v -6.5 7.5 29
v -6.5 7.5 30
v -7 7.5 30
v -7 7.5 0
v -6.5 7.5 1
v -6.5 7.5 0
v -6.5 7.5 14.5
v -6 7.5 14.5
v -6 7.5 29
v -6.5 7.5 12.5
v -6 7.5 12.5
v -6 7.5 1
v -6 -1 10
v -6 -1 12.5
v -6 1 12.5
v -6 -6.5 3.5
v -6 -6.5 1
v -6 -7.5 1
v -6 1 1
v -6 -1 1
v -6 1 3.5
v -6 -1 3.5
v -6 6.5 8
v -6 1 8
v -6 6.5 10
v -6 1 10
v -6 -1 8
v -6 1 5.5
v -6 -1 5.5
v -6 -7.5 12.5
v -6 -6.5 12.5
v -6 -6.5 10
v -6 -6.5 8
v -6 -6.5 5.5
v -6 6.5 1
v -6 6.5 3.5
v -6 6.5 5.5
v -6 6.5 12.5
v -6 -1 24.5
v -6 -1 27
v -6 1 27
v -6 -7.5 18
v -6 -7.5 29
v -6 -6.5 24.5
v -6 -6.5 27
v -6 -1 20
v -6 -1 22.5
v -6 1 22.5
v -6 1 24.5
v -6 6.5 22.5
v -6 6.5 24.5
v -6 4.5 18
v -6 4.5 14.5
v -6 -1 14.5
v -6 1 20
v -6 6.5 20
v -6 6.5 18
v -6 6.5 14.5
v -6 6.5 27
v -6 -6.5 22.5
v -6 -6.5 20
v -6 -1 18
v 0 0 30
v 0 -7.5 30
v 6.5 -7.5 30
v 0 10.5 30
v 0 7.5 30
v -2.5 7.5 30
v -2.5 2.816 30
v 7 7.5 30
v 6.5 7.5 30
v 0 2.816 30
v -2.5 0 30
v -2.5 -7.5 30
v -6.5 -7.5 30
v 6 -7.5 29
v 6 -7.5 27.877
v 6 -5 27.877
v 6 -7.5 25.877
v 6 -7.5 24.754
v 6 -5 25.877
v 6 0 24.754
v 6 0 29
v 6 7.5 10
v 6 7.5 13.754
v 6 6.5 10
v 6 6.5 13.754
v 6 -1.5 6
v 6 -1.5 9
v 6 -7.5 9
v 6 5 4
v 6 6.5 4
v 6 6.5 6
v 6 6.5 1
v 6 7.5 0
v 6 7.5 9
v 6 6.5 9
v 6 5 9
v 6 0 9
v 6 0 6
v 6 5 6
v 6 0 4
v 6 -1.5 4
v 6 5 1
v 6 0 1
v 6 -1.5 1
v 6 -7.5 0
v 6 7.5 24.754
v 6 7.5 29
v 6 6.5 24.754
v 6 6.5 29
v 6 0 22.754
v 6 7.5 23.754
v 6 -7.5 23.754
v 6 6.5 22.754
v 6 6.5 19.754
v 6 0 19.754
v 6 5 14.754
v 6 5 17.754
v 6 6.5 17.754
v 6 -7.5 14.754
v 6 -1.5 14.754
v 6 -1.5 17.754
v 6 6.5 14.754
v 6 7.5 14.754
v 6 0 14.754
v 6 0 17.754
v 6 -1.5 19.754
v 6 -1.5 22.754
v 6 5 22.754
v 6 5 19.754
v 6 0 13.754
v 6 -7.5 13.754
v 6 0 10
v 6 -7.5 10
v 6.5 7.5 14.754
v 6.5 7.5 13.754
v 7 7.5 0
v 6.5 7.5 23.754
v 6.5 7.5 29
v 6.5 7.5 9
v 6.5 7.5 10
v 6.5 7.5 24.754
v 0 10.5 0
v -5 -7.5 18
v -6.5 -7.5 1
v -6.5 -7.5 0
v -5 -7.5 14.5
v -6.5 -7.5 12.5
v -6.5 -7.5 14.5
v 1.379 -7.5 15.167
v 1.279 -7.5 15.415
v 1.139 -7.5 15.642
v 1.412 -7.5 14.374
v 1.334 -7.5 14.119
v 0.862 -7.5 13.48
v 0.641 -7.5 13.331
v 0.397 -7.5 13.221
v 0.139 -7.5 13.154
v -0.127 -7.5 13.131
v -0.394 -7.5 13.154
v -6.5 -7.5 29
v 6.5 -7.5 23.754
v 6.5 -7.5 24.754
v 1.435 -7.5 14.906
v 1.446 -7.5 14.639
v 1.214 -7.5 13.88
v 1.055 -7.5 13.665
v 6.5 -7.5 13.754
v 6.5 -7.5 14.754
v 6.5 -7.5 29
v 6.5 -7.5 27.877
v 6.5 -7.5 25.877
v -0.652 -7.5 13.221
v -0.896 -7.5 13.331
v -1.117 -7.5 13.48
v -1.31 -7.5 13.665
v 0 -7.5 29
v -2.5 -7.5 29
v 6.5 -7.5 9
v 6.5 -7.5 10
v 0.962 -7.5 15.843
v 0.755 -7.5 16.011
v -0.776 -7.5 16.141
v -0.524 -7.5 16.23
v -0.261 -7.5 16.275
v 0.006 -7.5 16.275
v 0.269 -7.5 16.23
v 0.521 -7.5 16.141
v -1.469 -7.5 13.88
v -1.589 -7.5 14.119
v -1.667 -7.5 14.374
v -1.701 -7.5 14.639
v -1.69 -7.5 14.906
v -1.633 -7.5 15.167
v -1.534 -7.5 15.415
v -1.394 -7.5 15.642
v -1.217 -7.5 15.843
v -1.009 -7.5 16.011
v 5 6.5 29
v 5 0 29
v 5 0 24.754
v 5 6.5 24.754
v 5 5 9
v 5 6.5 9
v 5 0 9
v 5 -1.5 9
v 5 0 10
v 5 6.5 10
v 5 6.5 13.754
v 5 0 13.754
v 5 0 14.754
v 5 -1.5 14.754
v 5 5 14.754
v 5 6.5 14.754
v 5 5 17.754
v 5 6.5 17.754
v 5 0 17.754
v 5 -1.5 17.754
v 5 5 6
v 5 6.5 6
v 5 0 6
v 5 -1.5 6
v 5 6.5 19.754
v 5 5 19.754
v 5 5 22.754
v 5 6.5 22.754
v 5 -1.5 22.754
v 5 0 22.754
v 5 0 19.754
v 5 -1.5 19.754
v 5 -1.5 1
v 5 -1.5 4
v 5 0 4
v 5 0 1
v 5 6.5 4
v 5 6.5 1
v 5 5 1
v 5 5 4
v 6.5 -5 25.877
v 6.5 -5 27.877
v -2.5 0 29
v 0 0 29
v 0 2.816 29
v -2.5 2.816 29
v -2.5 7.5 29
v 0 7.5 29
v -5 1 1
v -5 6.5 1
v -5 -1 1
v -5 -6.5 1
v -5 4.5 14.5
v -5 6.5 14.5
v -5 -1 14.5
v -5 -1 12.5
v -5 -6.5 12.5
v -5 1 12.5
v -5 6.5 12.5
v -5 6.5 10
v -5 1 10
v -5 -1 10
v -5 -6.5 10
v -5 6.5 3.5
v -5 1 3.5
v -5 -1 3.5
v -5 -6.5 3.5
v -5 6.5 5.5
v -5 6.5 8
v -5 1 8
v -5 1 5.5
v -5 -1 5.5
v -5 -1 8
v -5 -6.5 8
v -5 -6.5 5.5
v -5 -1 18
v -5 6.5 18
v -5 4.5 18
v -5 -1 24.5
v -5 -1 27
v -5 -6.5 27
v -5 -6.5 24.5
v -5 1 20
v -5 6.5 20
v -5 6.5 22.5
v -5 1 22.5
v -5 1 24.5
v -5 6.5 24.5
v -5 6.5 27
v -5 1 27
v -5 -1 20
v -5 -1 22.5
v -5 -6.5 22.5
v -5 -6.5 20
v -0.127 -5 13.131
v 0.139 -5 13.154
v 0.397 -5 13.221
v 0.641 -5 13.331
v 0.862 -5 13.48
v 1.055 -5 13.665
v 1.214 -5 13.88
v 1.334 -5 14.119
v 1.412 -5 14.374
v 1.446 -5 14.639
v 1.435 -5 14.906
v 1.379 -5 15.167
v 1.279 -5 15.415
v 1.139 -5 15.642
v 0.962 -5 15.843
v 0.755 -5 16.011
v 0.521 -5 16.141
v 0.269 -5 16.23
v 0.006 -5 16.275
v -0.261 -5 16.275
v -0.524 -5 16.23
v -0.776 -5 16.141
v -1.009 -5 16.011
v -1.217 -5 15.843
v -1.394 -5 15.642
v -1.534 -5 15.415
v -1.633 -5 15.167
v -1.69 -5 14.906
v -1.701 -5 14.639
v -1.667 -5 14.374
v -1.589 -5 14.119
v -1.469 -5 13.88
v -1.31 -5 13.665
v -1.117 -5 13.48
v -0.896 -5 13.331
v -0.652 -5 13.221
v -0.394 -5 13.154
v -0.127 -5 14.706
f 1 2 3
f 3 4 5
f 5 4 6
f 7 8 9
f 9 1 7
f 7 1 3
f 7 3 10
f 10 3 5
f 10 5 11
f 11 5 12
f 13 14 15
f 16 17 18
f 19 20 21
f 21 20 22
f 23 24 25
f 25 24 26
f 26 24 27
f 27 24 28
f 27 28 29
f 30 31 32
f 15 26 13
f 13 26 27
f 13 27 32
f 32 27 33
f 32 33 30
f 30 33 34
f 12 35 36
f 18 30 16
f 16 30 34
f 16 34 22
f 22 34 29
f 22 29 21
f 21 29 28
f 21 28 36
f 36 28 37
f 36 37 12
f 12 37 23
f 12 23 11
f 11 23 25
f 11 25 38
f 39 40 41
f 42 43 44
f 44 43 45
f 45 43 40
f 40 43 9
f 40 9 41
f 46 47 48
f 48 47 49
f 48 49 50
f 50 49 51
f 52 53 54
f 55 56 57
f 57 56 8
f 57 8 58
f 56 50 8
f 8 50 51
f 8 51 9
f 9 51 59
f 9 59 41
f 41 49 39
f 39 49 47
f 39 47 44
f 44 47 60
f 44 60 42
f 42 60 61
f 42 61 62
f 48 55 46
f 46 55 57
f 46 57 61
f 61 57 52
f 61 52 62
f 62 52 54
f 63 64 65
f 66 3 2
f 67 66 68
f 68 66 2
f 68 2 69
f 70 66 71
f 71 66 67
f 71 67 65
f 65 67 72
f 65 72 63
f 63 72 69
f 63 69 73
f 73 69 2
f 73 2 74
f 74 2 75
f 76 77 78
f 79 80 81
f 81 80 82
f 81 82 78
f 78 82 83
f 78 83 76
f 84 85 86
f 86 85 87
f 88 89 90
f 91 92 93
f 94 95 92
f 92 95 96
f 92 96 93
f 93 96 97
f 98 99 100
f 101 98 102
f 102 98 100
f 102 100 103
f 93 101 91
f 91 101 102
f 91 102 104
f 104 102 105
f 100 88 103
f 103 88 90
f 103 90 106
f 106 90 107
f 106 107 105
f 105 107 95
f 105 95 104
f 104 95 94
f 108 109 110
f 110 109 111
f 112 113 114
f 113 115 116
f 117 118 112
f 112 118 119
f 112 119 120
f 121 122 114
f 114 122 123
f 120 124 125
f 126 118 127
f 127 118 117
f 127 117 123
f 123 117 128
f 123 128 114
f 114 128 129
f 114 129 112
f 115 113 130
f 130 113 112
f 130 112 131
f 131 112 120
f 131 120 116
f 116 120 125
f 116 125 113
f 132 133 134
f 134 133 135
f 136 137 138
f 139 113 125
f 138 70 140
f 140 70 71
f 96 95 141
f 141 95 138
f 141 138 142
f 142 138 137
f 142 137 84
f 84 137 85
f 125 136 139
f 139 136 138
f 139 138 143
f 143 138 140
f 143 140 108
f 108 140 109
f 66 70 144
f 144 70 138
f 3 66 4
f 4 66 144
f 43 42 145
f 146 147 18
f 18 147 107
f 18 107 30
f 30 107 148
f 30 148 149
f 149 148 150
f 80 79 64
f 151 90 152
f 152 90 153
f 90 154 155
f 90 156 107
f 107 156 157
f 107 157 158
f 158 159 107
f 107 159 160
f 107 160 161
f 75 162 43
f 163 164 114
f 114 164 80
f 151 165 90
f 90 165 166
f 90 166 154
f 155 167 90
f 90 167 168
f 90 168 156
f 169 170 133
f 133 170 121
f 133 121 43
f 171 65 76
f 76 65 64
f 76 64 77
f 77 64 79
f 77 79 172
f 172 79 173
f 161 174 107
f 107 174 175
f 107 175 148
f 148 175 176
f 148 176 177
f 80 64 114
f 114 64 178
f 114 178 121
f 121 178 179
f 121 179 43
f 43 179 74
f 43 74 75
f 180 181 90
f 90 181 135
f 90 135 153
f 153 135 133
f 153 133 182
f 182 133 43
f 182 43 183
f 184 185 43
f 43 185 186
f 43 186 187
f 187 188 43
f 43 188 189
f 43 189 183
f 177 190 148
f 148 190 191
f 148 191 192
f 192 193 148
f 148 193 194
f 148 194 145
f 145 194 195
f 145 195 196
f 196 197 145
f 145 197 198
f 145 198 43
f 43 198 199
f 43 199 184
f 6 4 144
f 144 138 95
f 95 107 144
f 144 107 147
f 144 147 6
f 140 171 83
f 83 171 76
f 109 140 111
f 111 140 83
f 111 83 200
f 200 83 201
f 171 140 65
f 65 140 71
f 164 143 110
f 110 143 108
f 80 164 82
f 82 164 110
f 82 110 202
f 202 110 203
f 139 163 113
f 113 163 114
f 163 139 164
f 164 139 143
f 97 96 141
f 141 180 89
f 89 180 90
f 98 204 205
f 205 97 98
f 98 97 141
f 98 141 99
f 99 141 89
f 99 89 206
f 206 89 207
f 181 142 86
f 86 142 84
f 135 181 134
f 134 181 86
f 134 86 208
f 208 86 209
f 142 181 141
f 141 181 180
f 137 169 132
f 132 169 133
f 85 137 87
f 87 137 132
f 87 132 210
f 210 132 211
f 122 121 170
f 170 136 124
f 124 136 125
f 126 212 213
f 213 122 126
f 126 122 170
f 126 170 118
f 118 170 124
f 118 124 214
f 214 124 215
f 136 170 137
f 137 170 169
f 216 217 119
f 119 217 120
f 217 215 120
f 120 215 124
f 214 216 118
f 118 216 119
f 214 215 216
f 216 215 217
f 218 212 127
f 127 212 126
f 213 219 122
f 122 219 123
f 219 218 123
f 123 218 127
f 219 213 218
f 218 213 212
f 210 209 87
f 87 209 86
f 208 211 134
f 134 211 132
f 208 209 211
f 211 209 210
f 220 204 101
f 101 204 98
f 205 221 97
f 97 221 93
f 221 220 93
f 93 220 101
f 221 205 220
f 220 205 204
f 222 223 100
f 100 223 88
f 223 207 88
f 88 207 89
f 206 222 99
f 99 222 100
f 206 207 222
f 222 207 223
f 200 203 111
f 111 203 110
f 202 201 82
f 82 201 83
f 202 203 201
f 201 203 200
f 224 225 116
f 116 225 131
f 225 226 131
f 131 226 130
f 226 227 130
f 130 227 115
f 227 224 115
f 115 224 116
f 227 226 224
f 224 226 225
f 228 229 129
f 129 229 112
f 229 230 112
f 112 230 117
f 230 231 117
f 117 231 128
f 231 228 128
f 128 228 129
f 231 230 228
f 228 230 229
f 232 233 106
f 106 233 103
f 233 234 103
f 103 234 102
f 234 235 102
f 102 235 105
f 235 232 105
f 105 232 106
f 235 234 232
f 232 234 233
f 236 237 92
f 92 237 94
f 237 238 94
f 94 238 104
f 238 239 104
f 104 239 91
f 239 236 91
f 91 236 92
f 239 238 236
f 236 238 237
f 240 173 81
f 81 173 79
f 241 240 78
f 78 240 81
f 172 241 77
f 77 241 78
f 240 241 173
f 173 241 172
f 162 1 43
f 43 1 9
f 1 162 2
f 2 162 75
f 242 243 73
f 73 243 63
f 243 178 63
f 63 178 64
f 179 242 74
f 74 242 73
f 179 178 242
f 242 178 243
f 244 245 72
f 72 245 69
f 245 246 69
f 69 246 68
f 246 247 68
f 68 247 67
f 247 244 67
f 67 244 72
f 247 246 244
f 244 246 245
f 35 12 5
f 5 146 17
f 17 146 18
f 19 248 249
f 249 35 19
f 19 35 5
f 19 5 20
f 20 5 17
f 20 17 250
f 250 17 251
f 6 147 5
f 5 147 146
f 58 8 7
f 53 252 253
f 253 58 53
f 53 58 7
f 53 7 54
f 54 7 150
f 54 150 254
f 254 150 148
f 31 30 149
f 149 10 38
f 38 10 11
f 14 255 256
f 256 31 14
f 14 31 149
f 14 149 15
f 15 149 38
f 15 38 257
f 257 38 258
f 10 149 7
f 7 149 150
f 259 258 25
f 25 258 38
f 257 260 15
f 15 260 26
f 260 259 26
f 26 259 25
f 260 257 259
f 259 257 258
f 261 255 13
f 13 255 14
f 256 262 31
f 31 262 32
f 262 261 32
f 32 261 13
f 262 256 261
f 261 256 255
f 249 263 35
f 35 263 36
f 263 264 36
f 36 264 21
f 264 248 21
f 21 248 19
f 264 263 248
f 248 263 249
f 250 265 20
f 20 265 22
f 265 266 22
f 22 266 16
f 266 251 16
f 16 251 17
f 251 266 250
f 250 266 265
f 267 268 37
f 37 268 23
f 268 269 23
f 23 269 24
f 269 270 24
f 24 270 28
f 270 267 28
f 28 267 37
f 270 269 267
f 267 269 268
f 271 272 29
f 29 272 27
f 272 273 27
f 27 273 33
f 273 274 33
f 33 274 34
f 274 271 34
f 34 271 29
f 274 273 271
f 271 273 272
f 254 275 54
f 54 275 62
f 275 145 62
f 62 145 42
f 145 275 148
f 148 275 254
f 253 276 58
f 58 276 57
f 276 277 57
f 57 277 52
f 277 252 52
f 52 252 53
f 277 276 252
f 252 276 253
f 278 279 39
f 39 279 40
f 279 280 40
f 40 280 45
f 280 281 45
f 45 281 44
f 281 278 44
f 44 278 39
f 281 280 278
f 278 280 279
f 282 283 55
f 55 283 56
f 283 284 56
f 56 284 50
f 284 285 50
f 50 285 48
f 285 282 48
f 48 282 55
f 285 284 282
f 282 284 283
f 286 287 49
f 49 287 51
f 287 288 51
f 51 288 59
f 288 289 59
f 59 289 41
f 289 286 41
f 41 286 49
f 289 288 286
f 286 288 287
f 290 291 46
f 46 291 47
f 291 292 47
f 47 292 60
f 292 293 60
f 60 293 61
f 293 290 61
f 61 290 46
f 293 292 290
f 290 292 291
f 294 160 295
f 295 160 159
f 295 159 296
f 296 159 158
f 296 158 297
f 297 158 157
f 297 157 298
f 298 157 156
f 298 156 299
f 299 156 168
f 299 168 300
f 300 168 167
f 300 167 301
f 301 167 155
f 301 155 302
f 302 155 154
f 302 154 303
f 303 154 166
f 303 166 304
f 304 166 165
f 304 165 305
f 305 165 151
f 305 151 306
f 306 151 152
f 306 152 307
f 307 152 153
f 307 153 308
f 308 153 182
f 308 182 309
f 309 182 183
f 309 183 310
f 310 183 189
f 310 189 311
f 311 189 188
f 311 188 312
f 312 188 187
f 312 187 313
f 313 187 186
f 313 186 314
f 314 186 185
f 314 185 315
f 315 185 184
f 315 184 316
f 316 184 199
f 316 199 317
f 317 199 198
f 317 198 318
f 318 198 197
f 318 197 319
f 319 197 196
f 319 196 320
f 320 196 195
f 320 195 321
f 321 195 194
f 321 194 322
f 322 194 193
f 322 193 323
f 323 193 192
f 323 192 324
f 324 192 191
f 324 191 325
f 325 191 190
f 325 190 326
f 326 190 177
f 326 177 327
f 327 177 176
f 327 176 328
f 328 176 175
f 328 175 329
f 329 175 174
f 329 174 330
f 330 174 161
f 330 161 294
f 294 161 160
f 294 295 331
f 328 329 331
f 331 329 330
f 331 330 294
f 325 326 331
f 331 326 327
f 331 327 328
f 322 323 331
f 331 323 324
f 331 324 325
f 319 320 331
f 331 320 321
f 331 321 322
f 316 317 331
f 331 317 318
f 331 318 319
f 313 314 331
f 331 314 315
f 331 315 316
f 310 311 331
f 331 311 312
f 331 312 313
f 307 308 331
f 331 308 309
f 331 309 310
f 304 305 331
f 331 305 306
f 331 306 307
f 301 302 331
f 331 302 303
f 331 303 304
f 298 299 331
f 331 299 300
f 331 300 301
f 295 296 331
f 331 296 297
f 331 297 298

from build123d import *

# Parameters (mm, degrees)
SALIENTE_EXTRUIR1_DEPTH = 30
CROQUIS2_W              = 1
CROQUIS2_H              = 15
SALIENTE_EXTRUIR2_DEPTH = 0.5
CROQUIS3_W              = 1
CROQUIS3_H              = 15
SALIENTE_EXTRUIR3_DEPTH = 0.5
CROQUIS3_3_W            = 4.245899855
CROQUIS3_3_H            = 6.5
CROQUIS3_3_W_2          = 3
CROQUIS3_3_H_2          = 1.5
CROQUIS3_3_W_3          = 3.754100145
CORTAR_EXTRUIR1_DEPTH   = 1
CROQUIS3_4_W            = 2
CROQUIS3_4_H            = 2.5
SALIENTE_EXTRUIR4_DEPTH = 0.5
CROQUIS7_W              = 1
CROQUIS7_H              = 15
SALIENTE_EXTRUIR5_DEPTH = 0.5
CROQUIS8_W              = 2.5
CROQUIS8_H              = 7.5
CROQUIS8_H_2            = 4.684108695
CORTAR_EXTRUIR2_DEPTH   = 1
CROQUIS10_W             = 1
CROQUIS10_H             = 15
CROQUIS10_W_2           = 2
SALIENTE_EXTRUIR6_DEPTH = 0.5
CROQUIS11_W             = 2.5
CROQUIS11_H             = 5.5
CORTAR_EXTRUIR3_DEPTH   = 1
CROQUIS12_W             = 3.5
CROQUIS12_H             = 6.5
CROQUIS12_H_2           = 2
CROQUIS12_W_2           = 2.5
CROQUIS12_H_3           = 5.5
CORTAR_EXTRUIR4_DEPTH   = 1
CROQUIS13_R             = 1.575
CORTAR_EXTRUIR5_DEPTH   = 2.5


with BuildPart() as part:
    # Croquis1 → Saliente-Extruir1 (new body)
    with BuildSketch(Plane.XY):
        Polygon((-6, -7.5), (6, -7.5), (6, 7.5), (7, 7.5), (0, 10.5), (-7, 7.5), (-6, 7.5), align=None)
    extrude(amount=SALIENTE_EXTRUIR1_DEPTH)

    # Croquis2 → Saliente-Extruir2 (add)
    with BuildSketch(Plane(origin=(6, 0, 0), x_dir=(0, 0, -1), z_dir=(1, 0, 0))):
        with Locations((-29.5, 0)):
            Rectangle(CROQUIS2_W, CROQUIS2_H)
        with Locations((-24.254100145, 0)):
            Rectangle(CROQUIS2_W, CROQUIS2_H)
    extrude(amount=SALIENTE_EXTRUIR2_DEPTH)

    # Croquis3 → Saliente-Extruir3 (add)
    with BuildSketch(Plane(origin=(6, 0, 0), x_dir=(0, 0, -1), z_dir=(1, 0, 0))):
        with Locations((-14.254100145, 0)):
            Rectangle(CROQUIS3_W, CROQUIS3_H)
        with Locations((-9.5, 0)):
            Rectangle(CROQUIS3_W, CROQUIS3_H)
    extrude(amount=SALIENTE_EXTRUIR3_DEPTH)

    # Croquis3<3> → Cortar-Extruir1 (cut)
    with BuildSketch(Plane(origin=(6, 0, 0), x_dir=(0, 0, -1), z_dir=(1, 0, 0))):
        with Locations((-26.877050073, 3.25)):
            Rectangle(CROQUIS3_3_W, CROQUIS3_3_H)
        with Locations((-21.254100145, 5.75)):
            Rectangle(CROQUIS3_3_W_2, CROQUIS3_3_H_2)
        with Locations((-16.254100145, 5.75)):
            Rectangle(CROQUIS3_3_W_2, CROQUIS3_3_H_2)
        with Locations((-16.254100145, -0.75)):
            Rectangle(CROQUIS3_3_W_2, CROQUIS3_3_H_2)
        with Locations((-11.877050073, 3.25)):
            Rectangle(CROQUIS3_3_W_3, CROQUIS3_3_H)
        with Locations((-7.5, 5.75)):
            Rectangle(CROQUIS3_3_W_2, CROQUIS3_3_H_2)
        with Locations((-7.5, -0.75)):
            Rectangle(CROQUIS3_3_W_2, CROQUIS3_3_H_2)
        with Locations((-2.5, 5.75)):
            Rectangle(CROQUIS3_3_W_2, CROQUIS3_3_H_2)
        with Locations((-21.254100145, -0.75)):
            Rectangle(CROQUIS3_3_W_2, CROQUIS3_3_H_2)
        with Locations((-2.5, -0.75)):
            Rectangle(CROQUIS3_3_W_2, CROQUIS3_3_H_2)
    extrude(amount=-CORTAR_EXTRUIR1_DEPTH, mode=Mode.SUBTRACT)

    # Croquis3<4> → Saliente-Extruir4 (add)
    with BuildSketch(Plane(origin=(6, 0, 0), x_dir=(0, 0, -1), z_dir=(1, 0, 0))):
        with Locations((-26.877050072, -6.25)):
            Rectangle(CROQUIS3_4_W, CROQUIS3_4_H)
    extrude(amount=SALIENTE_EXTRUIR4_DEPTH)

    # Croquis7 → Saliente-Extruir5 (add)
    with BuildSketch(Plane.ZY.offset(6)):
        with Locations((29.5, 0)):
            Rectangle(CROQUIS7_W, CROQUIS7_H)
    extrude(amount=SALIENTE_EXTRUIR5_DEPTH)

    # Croquis8 → Cortar-Extruir2 (cut)
    with BuildSketch(Plane.XY.offset(30)):
        with Locations((-1.25, -3.75)):
            Rectangle(CROQUIS8_W, CROQUIS8_H)
        with Locations((-1.25, 5.157945653)):
            Rectangle(CROQUIS8_W, CROQUIS8_H_2)
    extrude(amount=-CORTAR_EXTRUIR2_DEPTH, mode=Mode.SUBTRACT)

    # Croquis10 → Saliente-Extruir6 (add)
    with BuildSketch(Plane.ZY.offset(6)):
        with Locations((0.5, 0)):
            Rectangle(CROQUIS10_W, CROQUIS10_H)
        with Locations((13.5, 0)):
            Rectangle(CROQUIS10_W_2, CROQUIS10_H)
    extrude(amount=SALIENTE_EXTRUIR6_DEPTH)

    # Croquis11 → Cortar-Extruir3 (cut)
    with BuildSketch(Plane.ZY.offset(6)):
        with Locations((6.75, 3.75)):
            Rectangle(CROQUIS11_W, CROQUIS11_H)
        with Locations((2.25, 3.75)):
            Rectangle(CROQUIS11_W, CROQUIS11_H)
        with Locations((11.25, 3.75)):
            Rectangle(CROQUIS11_W, CROQUIS11_H)
        with Locations((6.75, -3.75)):
            Rectangle(CROQUIS11_W, CROQUIS11_H)
        with Locations((11.25, -3.75)):
            Rectangle(CROQUIS11_W, CROQUIS11_H)
        with Locations((2.25, -3.75)):
            Rectangle(CROQUIS11_W, CROQUIS11_H)
    extrude(amount=-CORTAR_EXTRUIR3_DEPTH, mode=Mode.SUBTRACT)

    # Croquis12 → Cortar-Extruir4 (cut)
    with BuildSketch(Plane.ZY.offset(6)):
        with Locations((16.25, -4.25)):
            Rectangle(CROQUIS12_W, CROQUIS12_H)
        with Locations((16.25, 5.5)):
            Rectangle(CROQUIS12_W, CROQUIS12_H_2)
        with Locations((21.25, 3.75)):
            Rectangle(CROQUIS12_W_2, CROQUIS12_H_3)
        with Locations((25.75, 3.75)):
            Rectangle(CROQUIS12_W_2, CROQUIS12_H_3)
        with Locations((21.25, -3.75)):
            Rectangle(CROQUIS12_W_2, CROQUIS12_H_3)
        with Locations((25.75, -3.75)):
            Rectangle(CROQUIS12_W_2, CROQUIS12_H_3)
    extrude(amount=-CORTAR_EXTRUIR4_DEPTH, mode=Mode.SUBTRACT)

    # Croquis13 → Cortar-Extruir5 (cut)
    with BuildSketch(Plane.XZ.offset(7.5)):
        with Locations((-0.12745098, 14.705882353)):
            Circle(CROQUIS13_R)
    extrude(amount=-CORTAR_EXTRUIR5_DEPTH, mode=Mode.SUBTRACT)


solid = part.part
